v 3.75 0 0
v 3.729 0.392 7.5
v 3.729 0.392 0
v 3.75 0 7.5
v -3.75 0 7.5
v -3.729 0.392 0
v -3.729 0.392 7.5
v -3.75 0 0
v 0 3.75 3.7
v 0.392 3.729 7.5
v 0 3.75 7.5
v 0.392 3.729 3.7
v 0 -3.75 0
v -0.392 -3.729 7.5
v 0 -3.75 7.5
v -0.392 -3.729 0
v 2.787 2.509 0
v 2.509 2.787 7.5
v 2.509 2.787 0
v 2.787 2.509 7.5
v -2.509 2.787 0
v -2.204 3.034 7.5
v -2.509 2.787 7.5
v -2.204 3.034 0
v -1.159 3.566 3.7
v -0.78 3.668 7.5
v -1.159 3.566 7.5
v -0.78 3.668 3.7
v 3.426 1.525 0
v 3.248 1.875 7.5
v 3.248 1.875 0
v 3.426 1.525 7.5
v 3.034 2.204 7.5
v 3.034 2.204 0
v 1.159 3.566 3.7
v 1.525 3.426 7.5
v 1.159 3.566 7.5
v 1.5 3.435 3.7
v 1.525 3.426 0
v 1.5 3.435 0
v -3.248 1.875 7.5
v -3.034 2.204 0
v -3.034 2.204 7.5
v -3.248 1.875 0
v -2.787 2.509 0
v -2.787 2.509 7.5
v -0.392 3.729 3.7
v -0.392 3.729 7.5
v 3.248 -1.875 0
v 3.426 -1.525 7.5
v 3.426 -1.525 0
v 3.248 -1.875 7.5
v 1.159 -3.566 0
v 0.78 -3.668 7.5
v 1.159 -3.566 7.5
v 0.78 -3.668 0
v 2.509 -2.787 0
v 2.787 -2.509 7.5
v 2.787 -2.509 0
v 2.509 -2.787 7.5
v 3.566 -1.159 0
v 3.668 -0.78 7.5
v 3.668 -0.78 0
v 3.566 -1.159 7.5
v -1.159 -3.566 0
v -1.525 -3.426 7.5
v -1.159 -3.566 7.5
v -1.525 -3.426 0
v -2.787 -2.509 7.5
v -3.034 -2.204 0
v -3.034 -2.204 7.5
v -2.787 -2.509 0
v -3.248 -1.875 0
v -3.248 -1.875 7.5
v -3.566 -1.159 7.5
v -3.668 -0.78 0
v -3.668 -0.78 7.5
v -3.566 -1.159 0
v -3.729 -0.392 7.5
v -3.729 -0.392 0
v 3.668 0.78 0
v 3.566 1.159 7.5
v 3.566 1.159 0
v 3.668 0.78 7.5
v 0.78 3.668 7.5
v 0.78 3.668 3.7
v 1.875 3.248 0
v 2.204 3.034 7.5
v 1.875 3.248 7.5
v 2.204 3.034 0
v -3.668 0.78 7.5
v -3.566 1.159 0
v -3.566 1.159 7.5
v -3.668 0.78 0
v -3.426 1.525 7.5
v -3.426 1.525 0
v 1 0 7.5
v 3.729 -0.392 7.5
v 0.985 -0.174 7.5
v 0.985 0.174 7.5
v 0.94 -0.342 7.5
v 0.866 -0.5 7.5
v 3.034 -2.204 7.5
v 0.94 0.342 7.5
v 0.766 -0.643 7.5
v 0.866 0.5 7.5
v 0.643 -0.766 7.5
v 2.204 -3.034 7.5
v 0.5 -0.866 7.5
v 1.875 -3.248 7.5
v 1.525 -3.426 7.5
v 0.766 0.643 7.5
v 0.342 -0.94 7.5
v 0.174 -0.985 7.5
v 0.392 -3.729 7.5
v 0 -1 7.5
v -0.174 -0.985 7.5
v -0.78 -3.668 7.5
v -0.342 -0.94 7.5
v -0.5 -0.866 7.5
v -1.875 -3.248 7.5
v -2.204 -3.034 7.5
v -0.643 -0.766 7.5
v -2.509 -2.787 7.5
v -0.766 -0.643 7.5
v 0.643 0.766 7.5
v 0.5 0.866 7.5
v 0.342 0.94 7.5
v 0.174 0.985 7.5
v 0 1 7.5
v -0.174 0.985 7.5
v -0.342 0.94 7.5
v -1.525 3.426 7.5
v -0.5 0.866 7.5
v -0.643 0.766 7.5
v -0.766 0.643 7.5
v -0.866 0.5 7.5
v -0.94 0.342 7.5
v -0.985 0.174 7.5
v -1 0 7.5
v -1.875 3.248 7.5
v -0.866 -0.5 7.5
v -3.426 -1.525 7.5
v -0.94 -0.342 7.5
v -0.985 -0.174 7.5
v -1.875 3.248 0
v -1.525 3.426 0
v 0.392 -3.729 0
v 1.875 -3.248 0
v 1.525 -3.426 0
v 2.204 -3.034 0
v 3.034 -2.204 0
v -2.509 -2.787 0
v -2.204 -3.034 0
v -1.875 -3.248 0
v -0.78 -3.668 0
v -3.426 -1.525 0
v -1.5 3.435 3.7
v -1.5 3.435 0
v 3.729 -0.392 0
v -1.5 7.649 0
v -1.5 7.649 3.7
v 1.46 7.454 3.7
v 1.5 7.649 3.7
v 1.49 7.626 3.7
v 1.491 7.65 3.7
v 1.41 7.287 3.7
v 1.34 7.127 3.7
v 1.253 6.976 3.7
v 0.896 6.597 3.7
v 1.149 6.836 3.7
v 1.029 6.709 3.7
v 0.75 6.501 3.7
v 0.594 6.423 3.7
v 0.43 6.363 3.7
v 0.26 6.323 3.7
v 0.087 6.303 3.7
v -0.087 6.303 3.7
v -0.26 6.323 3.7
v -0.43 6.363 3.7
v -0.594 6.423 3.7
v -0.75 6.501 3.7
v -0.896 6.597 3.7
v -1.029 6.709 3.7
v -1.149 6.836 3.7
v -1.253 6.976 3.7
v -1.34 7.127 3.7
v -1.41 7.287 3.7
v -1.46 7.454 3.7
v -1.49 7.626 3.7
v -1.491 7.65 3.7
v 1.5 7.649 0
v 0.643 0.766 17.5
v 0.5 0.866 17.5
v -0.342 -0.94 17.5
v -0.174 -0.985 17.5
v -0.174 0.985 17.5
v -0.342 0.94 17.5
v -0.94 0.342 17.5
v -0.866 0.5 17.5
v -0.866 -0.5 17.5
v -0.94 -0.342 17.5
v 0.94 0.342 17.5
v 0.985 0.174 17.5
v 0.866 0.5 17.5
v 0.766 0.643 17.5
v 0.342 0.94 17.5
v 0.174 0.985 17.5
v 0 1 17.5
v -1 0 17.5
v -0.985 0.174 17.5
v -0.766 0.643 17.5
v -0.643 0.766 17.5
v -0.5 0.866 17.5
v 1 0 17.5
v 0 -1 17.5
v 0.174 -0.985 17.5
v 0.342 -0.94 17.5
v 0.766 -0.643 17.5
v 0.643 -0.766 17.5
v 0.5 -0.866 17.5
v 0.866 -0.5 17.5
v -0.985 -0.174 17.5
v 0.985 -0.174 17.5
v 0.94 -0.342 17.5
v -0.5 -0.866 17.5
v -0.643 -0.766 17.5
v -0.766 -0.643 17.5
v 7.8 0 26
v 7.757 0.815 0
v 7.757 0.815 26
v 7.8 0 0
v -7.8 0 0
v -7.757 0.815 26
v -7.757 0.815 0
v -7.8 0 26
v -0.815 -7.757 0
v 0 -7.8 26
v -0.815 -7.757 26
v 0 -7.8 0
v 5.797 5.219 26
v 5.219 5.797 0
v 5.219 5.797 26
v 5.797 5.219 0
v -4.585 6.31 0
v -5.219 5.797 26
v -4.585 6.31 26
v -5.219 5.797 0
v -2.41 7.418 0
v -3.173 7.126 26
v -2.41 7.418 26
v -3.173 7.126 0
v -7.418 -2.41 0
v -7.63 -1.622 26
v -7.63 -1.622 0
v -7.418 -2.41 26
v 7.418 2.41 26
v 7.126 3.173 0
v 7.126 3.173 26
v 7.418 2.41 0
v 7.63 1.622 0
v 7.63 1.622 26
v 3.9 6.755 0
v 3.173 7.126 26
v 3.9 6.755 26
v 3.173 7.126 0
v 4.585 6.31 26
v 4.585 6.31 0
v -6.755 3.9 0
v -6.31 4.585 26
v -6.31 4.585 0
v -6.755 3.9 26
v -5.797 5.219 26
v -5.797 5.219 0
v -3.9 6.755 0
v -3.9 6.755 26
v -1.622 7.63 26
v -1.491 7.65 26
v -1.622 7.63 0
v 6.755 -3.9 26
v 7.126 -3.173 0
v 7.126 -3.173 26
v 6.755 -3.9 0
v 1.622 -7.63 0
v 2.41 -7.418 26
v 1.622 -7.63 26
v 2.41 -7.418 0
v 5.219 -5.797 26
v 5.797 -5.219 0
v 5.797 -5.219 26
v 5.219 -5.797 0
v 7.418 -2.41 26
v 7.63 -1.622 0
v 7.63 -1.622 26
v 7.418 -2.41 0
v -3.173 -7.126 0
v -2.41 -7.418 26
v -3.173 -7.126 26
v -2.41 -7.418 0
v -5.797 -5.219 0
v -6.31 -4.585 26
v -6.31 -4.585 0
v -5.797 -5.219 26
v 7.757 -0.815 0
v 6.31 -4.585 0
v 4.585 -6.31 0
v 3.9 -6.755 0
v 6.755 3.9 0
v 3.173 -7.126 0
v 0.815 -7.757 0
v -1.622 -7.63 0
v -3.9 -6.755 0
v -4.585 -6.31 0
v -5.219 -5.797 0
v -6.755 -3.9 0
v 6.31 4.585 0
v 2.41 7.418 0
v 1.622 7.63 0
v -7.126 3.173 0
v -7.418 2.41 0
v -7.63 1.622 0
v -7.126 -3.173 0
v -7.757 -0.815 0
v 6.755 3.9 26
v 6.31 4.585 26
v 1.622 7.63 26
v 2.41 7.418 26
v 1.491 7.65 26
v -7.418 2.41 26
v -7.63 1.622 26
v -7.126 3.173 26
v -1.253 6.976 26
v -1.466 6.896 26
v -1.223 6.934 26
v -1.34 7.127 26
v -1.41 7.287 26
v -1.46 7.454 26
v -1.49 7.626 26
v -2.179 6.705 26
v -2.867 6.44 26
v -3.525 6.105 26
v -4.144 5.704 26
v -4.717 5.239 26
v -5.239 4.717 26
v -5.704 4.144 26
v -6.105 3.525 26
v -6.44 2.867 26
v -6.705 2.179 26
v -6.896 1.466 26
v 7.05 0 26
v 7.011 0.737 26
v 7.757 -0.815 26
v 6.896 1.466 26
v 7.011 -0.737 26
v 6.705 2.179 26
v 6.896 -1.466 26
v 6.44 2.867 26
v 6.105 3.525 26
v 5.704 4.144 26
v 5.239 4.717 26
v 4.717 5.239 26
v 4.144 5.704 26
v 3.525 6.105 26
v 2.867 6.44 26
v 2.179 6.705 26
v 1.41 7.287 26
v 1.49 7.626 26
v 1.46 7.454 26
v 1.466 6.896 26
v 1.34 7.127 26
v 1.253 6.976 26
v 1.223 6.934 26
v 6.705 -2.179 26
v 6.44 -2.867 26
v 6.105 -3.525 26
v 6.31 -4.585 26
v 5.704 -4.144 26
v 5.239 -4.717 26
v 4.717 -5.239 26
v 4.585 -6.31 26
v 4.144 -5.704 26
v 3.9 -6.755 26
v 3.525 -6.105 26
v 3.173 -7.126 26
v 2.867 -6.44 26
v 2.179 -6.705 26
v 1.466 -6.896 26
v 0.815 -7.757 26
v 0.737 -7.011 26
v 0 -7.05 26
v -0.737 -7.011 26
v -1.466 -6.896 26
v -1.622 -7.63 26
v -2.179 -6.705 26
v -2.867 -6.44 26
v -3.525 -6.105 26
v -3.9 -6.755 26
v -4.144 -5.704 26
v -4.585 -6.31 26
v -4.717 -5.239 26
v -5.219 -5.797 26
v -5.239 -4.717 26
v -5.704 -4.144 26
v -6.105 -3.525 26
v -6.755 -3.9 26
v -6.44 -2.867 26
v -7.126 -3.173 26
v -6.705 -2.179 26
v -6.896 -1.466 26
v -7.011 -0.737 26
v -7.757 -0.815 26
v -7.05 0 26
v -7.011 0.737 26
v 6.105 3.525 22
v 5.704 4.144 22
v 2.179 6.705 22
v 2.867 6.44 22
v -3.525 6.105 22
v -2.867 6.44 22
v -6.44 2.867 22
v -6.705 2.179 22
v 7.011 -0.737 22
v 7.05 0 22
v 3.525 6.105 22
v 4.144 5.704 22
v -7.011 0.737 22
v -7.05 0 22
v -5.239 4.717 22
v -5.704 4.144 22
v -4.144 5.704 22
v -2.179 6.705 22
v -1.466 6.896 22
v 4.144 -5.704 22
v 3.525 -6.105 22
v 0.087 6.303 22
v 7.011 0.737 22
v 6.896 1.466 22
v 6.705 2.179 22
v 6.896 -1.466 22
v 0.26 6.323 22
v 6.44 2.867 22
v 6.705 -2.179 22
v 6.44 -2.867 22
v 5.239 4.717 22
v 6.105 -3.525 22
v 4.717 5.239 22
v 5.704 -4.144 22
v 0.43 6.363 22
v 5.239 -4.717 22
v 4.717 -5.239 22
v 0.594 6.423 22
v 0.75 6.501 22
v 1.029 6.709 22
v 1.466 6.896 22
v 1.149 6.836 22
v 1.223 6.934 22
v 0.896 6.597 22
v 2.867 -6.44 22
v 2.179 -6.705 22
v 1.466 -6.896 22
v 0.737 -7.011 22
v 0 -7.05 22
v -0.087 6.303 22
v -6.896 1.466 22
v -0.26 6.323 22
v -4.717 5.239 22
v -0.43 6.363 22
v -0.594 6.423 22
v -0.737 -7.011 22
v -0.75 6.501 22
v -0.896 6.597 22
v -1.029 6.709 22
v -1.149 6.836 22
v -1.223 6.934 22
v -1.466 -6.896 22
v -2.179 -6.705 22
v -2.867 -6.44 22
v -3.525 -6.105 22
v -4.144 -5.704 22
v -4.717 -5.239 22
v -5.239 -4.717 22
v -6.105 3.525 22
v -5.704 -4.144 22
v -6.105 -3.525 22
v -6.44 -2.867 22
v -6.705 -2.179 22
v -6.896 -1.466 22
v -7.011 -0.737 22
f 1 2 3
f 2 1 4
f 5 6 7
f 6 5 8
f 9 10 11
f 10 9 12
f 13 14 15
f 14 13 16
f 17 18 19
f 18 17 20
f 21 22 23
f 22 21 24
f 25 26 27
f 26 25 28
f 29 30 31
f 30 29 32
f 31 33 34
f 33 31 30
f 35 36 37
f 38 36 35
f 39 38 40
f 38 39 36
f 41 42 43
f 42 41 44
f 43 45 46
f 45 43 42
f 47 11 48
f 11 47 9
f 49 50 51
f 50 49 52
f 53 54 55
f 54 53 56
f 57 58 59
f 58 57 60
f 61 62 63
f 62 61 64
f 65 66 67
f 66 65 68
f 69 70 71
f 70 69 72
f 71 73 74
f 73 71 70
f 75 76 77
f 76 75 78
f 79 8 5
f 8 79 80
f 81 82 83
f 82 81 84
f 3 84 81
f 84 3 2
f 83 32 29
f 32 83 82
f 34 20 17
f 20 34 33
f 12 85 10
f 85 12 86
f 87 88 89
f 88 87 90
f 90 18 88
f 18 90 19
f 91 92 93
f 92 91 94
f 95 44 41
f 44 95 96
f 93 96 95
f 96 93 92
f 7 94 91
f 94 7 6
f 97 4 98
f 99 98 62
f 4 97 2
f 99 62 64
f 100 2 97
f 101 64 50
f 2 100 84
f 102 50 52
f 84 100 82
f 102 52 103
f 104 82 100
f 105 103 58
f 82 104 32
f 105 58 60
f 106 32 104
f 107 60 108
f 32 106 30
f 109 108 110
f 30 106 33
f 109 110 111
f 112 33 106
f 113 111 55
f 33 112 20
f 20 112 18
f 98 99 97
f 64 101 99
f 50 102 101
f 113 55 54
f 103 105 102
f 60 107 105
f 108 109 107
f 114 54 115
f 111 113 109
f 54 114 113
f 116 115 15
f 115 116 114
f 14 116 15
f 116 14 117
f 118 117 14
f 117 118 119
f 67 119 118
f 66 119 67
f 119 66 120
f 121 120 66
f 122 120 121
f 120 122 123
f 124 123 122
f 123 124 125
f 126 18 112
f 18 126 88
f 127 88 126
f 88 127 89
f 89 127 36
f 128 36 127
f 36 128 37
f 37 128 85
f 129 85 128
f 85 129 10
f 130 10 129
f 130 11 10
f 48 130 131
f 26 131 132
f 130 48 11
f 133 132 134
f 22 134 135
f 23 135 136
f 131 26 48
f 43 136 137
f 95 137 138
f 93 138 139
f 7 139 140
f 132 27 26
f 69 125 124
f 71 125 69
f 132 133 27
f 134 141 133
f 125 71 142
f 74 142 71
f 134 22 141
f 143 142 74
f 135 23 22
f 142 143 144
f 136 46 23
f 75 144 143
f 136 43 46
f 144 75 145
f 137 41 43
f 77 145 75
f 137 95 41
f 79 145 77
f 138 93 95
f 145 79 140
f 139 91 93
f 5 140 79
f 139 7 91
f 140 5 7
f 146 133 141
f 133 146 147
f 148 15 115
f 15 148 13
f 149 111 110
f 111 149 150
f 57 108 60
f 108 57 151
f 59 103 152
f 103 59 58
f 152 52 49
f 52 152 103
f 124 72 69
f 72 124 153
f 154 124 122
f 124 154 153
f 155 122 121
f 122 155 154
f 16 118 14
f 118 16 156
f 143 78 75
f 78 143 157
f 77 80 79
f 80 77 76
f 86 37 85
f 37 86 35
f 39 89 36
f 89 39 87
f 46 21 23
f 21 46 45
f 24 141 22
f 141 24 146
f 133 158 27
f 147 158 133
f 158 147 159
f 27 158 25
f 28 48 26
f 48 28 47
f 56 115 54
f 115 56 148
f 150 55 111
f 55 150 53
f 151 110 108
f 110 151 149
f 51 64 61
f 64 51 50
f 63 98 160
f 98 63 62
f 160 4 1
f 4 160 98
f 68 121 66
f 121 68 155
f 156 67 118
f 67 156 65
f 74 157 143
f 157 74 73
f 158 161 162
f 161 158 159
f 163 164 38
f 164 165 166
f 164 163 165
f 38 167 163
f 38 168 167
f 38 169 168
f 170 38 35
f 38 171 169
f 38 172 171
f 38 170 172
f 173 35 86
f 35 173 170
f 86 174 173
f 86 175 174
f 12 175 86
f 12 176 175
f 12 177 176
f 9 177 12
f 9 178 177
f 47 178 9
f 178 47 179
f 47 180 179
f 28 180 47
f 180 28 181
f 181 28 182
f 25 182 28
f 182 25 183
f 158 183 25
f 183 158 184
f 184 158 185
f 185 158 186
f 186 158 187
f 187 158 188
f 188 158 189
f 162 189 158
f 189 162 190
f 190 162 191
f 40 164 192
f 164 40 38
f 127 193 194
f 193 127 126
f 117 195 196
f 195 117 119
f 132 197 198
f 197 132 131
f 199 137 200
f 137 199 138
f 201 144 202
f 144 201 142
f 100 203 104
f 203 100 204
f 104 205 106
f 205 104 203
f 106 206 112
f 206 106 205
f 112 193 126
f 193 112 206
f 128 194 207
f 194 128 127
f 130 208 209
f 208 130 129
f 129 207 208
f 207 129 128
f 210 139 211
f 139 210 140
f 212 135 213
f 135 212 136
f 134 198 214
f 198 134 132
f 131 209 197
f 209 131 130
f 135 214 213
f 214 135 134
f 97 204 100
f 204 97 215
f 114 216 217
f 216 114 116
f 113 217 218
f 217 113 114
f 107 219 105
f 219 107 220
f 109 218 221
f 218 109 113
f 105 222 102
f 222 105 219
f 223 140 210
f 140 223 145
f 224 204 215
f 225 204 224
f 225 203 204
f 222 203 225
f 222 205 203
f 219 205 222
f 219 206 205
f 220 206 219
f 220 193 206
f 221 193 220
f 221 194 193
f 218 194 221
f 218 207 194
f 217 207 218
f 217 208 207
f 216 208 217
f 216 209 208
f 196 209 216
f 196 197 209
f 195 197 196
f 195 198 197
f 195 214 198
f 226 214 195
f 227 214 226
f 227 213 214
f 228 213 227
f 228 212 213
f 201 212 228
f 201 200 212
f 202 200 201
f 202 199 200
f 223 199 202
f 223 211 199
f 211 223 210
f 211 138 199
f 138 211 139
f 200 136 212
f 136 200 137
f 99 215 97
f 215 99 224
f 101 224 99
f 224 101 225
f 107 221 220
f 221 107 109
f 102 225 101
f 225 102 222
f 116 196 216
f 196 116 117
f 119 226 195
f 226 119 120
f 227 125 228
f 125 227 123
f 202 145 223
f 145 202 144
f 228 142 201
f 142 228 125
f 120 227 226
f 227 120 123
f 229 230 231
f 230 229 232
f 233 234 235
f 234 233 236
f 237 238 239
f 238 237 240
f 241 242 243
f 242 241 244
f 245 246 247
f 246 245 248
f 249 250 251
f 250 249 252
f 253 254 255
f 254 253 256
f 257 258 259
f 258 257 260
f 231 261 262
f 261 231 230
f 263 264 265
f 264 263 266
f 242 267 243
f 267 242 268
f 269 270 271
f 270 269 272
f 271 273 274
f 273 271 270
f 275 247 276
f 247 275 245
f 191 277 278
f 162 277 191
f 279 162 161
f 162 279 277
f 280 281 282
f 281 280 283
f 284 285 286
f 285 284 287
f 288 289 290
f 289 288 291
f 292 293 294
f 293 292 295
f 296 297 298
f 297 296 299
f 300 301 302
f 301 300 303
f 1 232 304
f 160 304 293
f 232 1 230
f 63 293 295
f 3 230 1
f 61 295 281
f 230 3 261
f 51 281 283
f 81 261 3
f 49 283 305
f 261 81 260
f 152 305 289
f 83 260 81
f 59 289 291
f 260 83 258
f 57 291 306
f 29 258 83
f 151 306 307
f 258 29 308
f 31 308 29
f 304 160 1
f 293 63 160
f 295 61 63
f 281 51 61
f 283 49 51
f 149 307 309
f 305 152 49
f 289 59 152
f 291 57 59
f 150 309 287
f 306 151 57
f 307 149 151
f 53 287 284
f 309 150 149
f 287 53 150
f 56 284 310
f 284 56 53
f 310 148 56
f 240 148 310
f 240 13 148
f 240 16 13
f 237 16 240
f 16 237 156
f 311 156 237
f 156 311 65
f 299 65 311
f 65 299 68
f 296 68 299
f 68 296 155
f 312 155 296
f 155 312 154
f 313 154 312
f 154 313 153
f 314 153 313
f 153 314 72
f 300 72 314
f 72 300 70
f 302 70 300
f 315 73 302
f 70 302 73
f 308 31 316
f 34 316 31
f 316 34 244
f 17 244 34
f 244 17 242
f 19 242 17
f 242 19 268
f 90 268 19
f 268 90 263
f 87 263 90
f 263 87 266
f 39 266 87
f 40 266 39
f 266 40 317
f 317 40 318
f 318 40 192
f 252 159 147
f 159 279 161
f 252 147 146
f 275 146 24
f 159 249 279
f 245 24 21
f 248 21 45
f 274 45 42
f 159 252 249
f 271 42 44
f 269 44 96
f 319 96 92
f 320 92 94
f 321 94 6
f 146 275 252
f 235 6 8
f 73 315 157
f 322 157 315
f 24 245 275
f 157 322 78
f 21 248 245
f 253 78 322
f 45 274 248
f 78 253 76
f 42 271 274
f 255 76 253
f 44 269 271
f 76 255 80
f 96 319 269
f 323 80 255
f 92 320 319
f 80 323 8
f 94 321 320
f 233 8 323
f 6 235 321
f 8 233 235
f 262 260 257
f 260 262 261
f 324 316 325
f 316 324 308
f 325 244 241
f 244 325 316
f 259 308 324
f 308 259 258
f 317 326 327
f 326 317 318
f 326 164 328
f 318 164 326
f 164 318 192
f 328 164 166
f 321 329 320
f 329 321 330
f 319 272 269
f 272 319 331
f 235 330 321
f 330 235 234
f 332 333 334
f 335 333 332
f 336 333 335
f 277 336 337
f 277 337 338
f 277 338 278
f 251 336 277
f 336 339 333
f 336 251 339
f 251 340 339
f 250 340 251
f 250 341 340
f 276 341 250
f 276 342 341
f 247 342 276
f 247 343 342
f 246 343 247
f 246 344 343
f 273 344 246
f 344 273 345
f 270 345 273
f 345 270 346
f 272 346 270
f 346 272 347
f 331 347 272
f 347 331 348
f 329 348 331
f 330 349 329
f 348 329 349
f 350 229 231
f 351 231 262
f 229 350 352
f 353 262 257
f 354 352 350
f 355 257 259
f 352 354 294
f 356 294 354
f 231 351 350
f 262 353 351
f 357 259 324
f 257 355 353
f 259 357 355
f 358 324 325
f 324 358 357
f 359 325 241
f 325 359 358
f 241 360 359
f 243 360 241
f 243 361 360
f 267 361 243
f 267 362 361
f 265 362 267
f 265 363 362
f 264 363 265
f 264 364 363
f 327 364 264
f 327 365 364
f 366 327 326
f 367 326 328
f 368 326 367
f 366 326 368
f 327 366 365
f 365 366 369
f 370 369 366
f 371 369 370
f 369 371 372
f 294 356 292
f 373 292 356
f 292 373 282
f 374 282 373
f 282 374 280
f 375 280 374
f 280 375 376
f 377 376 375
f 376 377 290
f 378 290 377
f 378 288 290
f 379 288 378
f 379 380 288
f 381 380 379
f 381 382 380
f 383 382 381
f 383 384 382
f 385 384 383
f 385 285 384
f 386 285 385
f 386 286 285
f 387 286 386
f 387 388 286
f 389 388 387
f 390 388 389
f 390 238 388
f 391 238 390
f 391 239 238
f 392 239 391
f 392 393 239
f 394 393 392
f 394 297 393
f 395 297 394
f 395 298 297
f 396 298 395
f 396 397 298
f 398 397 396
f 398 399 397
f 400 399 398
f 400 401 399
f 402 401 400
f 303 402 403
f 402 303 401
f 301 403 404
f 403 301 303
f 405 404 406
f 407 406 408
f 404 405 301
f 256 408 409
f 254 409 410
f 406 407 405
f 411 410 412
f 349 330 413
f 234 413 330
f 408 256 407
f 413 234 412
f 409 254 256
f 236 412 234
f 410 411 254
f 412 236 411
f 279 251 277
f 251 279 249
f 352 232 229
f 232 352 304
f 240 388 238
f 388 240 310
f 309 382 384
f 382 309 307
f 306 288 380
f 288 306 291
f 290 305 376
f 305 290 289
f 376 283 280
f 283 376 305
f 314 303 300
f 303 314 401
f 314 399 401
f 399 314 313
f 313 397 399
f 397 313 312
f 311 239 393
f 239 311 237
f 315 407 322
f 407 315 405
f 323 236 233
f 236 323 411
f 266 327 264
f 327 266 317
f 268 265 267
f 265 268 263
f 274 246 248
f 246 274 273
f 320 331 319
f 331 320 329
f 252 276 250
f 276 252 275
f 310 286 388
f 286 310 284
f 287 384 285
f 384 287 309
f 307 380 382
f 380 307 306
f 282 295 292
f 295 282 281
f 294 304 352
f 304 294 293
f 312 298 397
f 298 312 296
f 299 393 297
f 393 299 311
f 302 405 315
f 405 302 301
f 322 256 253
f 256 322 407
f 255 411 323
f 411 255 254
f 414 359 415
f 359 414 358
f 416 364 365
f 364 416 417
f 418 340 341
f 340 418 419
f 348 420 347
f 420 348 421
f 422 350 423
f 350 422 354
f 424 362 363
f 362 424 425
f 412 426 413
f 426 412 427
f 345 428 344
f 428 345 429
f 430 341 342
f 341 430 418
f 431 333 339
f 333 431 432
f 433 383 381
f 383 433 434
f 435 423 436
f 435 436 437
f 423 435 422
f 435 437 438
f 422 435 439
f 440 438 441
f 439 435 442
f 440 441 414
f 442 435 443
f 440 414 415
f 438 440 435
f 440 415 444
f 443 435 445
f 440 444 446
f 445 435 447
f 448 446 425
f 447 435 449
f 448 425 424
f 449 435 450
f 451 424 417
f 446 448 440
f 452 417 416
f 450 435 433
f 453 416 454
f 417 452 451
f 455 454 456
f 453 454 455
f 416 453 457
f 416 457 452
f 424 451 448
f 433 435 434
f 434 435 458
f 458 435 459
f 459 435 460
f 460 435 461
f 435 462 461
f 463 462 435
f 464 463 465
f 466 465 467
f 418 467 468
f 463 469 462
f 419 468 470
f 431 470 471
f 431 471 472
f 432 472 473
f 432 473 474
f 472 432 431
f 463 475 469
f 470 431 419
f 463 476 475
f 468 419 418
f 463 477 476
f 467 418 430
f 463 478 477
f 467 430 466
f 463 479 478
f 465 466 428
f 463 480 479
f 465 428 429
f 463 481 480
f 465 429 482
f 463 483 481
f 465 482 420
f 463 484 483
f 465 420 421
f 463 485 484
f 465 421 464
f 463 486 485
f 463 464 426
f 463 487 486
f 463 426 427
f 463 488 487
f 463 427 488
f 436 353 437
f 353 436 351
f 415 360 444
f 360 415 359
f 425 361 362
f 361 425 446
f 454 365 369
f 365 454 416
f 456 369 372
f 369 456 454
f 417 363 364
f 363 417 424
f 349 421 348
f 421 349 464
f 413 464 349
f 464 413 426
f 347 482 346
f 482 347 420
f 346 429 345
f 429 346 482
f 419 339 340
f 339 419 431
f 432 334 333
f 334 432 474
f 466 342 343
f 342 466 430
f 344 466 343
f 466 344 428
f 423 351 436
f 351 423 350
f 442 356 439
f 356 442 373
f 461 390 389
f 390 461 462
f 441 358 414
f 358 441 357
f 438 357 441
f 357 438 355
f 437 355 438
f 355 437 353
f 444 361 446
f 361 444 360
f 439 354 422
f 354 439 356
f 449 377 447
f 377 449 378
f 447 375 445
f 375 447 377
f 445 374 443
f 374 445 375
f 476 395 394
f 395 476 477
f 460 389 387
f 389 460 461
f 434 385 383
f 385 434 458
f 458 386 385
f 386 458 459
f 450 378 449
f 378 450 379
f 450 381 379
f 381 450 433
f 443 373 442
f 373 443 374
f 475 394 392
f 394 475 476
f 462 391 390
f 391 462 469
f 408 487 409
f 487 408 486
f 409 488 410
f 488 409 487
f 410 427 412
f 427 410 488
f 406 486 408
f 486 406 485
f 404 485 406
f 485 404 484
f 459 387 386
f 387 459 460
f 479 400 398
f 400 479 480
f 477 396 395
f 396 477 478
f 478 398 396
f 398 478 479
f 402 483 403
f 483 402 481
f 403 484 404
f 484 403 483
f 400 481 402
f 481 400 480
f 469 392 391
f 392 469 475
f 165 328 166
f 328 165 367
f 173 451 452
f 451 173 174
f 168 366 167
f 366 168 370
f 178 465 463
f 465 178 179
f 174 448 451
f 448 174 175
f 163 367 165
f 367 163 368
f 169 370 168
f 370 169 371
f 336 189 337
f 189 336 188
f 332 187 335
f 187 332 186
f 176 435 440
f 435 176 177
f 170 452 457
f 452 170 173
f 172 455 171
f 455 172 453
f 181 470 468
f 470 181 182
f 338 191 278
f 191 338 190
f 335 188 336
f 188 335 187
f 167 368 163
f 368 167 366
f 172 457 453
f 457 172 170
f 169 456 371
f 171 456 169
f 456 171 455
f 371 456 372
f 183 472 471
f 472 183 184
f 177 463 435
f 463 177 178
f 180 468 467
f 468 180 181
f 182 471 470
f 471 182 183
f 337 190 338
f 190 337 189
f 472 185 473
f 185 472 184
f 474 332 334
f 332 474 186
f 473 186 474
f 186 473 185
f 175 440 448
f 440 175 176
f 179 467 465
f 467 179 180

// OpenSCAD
noz=0.35;
$fa=6;
$fs=noz/2;
tolerence=0.1;

d1 = 15.6;
hboost=22;
d2=d1-(2*noz)-tolerence;
h2=4;

channel=3;
screwinset=7.5;

difference() {
    //main
    cylinder(r = (d1/2), h = hboost+h2, center = false);
    //inset in top
    translate([0,0,hboost]) {
        cylinder(r = d2/2-(noz), h = h2+tolerence, center = false);
    }
    //side channel
    translate([0,d1/2,-tolerence]) {
    cylinder(r = 3/2, h = hboost+h2+2*tolerence, center = false);
    }
    //bottem insets
    translate([0,0,-tolerence]) {
    union(){
        cylinder(r = screwinset/2, h = screwinset+tolerence, center = false);
        translate([0,d1/2/2,0]) {
        cube([channel, d1/2, screwinset+tolerence], center = true);
        }
        //screw pilot
        cylinder(r = 1, h = screwinset+10+tolerence, center = false);
        }
    }
}
